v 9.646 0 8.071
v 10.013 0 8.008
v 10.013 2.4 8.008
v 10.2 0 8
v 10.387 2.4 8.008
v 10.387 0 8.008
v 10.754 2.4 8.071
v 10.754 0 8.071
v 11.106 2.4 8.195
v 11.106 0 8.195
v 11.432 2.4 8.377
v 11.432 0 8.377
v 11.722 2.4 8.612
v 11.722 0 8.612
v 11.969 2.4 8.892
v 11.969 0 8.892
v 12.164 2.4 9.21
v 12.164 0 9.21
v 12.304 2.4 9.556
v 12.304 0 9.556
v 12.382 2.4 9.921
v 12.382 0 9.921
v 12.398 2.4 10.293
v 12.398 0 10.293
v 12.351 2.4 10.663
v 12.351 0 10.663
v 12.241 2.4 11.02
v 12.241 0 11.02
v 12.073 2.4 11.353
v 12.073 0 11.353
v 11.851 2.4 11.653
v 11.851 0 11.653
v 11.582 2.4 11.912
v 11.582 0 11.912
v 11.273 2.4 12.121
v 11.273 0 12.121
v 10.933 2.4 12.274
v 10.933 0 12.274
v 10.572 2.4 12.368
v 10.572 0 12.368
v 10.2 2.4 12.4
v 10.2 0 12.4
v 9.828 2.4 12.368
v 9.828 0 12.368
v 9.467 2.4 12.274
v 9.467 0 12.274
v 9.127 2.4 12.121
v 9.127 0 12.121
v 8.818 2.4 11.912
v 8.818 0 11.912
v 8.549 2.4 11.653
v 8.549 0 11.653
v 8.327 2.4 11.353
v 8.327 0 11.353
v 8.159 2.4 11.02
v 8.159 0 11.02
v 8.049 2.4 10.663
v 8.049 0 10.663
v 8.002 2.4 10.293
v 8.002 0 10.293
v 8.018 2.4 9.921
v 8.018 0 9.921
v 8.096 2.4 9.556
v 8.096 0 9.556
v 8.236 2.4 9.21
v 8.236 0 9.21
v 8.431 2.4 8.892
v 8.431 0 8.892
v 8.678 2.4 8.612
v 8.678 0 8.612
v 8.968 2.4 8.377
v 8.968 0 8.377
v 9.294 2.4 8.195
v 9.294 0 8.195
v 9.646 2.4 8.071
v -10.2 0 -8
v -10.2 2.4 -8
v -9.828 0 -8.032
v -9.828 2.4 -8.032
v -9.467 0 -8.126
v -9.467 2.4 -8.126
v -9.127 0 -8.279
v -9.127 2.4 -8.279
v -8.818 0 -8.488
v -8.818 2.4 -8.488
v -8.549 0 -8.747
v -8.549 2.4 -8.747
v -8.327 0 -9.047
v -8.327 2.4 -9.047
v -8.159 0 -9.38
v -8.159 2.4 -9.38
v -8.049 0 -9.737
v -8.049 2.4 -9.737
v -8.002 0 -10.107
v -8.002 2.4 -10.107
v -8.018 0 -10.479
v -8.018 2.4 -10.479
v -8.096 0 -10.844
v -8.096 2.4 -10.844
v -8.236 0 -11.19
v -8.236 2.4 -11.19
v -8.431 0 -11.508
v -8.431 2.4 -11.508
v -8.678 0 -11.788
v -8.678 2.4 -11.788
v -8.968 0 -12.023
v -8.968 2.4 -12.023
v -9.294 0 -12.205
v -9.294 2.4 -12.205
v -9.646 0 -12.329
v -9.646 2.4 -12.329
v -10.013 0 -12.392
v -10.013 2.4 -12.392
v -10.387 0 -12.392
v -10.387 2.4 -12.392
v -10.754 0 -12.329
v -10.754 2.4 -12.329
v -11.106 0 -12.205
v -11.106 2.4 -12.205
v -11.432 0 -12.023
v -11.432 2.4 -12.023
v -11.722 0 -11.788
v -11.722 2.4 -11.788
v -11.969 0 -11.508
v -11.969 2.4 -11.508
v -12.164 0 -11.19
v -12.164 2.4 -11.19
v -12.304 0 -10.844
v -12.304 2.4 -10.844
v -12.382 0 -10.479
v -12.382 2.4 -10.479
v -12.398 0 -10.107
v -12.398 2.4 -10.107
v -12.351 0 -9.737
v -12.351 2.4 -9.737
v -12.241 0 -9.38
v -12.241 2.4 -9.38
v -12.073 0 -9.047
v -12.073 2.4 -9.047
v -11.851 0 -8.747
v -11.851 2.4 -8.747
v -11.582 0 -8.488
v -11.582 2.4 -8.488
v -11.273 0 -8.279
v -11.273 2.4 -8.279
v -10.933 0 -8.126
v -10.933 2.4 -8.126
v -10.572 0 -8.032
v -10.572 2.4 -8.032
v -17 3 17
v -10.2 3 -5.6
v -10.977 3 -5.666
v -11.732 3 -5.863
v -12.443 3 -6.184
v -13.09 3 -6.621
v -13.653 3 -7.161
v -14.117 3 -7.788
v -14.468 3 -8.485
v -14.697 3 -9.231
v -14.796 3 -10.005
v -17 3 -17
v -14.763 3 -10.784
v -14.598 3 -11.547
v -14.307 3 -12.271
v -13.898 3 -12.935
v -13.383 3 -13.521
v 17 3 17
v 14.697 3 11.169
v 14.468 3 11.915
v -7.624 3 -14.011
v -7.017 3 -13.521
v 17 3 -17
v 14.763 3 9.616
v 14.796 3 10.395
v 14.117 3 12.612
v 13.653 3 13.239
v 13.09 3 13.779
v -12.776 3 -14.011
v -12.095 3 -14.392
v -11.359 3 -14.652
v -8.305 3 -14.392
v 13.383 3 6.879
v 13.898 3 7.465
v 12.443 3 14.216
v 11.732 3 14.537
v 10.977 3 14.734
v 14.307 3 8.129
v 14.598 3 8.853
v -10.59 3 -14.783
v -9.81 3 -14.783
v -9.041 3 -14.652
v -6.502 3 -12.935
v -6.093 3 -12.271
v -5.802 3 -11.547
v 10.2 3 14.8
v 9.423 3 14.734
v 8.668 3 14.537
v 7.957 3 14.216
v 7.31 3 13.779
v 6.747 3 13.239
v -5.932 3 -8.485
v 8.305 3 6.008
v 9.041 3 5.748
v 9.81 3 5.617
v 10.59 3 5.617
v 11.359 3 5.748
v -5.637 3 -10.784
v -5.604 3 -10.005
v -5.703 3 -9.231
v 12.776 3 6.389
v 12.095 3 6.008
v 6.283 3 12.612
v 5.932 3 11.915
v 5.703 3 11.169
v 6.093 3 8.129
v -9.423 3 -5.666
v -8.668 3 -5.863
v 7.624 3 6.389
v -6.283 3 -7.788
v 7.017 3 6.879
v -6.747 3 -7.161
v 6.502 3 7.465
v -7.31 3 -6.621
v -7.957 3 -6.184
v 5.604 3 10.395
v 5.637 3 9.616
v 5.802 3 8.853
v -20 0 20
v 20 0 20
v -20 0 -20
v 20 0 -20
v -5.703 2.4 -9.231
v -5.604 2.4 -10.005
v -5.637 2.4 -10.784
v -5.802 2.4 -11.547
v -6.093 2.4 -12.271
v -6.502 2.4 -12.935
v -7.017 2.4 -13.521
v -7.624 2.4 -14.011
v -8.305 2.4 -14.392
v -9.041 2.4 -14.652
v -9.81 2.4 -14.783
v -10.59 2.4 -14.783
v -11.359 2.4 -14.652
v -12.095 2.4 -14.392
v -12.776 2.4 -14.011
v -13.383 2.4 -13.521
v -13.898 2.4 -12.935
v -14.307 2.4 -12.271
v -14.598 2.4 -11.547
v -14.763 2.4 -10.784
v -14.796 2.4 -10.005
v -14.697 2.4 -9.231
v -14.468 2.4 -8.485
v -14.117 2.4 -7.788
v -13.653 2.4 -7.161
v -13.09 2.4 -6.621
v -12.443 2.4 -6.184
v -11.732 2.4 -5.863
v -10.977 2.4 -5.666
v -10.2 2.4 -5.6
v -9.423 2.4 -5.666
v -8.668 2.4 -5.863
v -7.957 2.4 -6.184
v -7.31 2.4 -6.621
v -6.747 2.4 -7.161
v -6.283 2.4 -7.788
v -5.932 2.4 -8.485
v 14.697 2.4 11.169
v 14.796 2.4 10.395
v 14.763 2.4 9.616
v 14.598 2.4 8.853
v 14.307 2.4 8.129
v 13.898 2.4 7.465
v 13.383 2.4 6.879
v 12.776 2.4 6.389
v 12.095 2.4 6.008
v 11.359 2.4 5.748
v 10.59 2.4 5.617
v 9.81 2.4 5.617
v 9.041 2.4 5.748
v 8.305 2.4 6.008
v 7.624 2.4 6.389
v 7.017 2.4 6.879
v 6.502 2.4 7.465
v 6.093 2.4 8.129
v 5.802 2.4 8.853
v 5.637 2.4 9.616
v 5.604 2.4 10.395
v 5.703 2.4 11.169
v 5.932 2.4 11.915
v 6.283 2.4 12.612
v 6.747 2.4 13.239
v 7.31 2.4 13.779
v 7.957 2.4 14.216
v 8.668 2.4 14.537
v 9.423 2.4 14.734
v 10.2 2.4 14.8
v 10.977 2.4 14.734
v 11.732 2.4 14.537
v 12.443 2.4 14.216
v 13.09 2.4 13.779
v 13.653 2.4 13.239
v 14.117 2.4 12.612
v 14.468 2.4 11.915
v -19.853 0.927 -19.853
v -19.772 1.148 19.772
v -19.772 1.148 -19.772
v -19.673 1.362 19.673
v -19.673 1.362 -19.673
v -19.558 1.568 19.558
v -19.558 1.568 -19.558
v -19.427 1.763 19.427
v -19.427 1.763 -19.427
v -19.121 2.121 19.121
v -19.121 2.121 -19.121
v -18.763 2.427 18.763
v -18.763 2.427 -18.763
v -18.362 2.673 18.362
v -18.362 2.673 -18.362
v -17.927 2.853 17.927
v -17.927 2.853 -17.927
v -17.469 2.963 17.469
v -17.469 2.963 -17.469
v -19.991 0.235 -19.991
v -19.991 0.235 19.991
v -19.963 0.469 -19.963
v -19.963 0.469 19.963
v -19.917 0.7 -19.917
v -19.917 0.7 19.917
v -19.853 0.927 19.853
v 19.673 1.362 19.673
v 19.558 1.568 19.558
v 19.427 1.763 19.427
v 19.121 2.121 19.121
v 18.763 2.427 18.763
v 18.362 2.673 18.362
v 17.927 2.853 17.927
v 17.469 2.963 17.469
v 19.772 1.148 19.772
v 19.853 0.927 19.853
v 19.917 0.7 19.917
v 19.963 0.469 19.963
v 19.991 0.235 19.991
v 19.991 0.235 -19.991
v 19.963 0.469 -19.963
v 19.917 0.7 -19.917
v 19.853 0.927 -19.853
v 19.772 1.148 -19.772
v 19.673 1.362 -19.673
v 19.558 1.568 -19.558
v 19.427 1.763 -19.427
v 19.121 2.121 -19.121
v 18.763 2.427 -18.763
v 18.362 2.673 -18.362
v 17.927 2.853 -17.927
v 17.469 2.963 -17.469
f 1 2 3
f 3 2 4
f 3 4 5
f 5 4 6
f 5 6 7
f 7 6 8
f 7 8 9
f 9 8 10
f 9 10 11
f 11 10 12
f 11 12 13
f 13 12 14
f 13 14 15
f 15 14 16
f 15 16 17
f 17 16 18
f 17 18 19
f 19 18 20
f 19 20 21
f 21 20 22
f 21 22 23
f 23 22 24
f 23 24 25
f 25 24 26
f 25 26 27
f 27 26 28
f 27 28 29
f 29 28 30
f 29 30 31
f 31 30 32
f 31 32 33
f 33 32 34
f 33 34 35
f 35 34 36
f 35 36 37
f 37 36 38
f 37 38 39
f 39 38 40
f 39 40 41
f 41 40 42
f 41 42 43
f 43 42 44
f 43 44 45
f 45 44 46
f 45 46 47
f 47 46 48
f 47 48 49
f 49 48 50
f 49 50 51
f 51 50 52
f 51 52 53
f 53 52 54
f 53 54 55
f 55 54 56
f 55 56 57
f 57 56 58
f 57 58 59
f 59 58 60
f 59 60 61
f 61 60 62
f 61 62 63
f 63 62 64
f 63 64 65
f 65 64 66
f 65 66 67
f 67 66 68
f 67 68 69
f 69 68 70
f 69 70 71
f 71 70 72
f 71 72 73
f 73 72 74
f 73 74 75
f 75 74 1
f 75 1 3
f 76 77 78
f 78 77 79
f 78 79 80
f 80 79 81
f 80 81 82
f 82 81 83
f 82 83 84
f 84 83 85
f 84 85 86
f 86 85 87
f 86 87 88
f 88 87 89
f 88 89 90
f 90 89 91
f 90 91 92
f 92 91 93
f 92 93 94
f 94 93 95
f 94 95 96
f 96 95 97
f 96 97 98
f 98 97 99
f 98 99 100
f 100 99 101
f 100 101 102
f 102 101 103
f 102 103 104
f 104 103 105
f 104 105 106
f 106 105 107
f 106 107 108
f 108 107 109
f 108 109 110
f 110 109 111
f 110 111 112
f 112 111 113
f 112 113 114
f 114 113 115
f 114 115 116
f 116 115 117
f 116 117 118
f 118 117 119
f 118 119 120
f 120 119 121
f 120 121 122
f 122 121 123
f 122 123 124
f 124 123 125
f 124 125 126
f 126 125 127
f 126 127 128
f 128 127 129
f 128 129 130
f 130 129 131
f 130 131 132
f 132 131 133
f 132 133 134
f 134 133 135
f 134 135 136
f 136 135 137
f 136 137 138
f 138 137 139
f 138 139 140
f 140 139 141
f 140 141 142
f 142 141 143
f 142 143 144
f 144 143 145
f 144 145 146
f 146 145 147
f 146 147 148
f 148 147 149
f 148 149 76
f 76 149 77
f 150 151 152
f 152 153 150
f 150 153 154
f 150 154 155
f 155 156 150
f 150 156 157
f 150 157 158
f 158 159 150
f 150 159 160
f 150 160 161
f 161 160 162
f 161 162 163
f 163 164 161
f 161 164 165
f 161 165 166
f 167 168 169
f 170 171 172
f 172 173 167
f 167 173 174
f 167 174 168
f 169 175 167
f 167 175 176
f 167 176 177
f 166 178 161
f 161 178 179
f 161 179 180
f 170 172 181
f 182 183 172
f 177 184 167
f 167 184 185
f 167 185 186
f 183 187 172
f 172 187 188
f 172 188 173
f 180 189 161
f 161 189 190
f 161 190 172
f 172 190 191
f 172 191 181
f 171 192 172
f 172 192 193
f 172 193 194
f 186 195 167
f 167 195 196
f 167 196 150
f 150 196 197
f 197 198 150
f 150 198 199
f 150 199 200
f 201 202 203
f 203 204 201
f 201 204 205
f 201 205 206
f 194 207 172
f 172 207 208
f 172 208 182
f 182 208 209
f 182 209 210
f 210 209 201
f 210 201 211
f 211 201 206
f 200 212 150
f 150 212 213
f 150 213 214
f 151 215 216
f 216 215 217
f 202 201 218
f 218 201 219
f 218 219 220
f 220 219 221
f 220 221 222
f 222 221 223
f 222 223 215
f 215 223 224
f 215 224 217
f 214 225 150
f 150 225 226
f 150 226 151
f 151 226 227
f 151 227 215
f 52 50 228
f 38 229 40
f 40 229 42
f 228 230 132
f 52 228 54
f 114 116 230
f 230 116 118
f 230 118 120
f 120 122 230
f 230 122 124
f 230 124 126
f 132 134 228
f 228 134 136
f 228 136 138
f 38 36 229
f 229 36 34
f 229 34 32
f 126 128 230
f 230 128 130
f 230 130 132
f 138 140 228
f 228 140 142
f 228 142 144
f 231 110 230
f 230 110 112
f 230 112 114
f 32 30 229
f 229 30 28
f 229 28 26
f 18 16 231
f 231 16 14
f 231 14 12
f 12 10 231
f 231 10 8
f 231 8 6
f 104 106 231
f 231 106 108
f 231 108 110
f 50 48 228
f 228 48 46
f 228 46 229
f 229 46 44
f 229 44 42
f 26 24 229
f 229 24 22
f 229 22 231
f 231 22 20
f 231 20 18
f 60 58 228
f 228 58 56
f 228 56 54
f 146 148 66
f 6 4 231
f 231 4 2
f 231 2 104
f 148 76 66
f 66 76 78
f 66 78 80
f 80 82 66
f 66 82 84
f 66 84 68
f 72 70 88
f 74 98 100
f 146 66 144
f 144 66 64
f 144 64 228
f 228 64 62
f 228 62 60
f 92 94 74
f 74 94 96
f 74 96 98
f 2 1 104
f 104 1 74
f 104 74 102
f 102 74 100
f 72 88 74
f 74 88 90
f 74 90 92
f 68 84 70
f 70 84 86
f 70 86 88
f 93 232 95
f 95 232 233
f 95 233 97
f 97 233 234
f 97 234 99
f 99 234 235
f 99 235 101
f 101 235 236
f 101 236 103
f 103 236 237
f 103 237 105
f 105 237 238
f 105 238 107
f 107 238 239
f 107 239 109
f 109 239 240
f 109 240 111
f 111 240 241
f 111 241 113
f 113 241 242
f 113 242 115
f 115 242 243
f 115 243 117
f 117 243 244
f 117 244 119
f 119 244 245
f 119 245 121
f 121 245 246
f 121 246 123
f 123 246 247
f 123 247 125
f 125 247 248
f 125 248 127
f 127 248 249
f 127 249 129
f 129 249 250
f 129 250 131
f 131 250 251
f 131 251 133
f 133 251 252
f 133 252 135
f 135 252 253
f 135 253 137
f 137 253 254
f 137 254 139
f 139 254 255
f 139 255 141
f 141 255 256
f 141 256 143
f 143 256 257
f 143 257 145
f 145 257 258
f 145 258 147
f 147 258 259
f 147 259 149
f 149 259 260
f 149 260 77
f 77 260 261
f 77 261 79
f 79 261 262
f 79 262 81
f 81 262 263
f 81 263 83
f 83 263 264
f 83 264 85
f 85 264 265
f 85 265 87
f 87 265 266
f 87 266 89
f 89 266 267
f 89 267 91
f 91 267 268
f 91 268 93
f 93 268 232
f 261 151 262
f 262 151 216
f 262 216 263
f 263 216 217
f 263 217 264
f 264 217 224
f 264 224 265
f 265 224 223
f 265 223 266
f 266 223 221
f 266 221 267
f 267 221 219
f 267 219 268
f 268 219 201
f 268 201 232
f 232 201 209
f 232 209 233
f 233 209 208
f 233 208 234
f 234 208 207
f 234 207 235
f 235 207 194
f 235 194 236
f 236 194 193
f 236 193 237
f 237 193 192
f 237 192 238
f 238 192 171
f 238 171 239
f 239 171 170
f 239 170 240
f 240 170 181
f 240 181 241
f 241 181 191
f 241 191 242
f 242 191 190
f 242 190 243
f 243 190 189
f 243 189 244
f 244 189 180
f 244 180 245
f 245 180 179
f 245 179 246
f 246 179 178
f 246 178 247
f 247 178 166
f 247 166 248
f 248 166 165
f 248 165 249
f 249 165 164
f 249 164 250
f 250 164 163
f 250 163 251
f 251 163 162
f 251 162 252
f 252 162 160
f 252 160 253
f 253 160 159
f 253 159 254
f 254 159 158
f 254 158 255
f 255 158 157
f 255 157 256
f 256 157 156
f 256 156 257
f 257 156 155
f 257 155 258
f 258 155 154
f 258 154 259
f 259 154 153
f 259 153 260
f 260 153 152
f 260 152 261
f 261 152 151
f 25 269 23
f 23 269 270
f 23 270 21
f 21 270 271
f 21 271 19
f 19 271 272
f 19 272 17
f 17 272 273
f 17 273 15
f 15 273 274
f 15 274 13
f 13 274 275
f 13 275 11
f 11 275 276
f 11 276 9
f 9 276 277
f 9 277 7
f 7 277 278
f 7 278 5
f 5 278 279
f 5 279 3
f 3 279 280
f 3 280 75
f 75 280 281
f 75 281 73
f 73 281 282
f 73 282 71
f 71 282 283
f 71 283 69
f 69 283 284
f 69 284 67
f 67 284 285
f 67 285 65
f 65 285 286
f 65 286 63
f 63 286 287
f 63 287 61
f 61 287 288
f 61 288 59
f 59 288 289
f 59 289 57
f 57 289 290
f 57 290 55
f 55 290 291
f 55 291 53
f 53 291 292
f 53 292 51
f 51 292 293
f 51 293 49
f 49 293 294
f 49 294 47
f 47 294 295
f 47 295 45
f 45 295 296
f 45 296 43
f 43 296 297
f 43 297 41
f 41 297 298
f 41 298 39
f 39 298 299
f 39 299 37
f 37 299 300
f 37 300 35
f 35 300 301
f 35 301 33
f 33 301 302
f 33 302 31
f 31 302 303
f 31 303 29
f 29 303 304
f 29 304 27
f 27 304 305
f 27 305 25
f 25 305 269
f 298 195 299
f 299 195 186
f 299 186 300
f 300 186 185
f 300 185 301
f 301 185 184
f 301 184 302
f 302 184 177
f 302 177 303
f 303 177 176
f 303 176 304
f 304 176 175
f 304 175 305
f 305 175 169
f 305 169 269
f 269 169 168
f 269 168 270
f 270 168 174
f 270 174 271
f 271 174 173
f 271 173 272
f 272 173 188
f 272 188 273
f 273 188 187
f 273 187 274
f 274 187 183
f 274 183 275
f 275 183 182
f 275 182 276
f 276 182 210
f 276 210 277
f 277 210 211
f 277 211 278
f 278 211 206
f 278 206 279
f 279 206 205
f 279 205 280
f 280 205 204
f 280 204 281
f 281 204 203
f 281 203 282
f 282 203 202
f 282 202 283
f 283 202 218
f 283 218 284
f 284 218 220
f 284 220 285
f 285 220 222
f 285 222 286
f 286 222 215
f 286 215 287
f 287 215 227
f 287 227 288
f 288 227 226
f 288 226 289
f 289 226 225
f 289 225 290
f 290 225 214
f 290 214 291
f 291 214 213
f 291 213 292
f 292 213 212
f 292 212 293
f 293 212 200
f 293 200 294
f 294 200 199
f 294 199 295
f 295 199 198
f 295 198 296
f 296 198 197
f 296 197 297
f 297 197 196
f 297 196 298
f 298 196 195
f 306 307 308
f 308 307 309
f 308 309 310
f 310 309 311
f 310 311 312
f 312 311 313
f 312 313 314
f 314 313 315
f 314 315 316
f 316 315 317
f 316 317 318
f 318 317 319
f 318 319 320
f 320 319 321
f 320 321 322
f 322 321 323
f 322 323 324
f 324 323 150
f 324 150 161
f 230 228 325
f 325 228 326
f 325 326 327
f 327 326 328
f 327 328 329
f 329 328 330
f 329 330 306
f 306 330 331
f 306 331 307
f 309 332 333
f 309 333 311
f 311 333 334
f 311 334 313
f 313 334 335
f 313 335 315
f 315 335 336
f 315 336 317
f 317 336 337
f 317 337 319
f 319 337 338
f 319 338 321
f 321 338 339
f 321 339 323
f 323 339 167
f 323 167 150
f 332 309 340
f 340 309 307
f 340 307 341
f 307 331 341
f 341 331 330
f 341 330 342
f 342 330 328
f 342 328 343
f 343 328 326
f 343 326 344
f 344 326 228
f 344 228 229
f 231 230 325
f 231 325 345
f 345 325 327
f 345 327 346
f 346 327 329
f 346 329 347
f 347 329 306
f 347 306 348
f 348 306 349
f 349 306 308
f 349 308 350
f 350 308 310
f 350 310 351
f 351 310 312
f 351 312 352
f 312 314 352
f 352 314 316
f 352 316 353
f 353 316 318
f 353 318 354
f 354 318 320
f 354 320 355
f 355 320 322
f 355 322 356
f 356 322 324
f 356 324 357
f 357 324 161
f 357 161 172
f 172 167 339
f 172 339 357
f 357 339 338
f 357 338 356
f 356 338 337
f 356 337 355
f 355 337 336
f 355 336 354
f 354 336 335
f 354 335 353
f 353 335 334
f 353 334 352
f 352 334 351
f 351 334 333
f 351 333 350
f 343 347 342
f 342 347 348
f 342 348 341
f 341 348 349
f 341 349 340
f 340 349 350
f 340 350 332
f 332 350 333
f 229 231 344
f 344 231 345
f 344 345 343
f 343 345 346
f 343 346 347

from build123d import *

# Parameters (mm, degrees)
SKETCH1_W           = 40
SKETCH1_H           = 40
BOSS_EXTRUDE1_DEPTH = 3
SKETCH2_R           = 2.2
CUT_EXTRUDE1_DEPTH  = 29.442925307
SKETCH3_R           = 4.6
CUT_EXTRUDE2_DEPTH  = 0.6
FILLET1_R           = 3


with BuildPart() as part:
    # Sketch1 → Boss-Extrude1 (new body)
    with BuildSketch(Plane(origin=(0, 0, 0), x_dir=(1, 0, 0), z_dir=(0, 1, 0))):
        Rectangle(SKETCH1_W, SKETCH1_H)
    extrude(amount=BOSS_EXTRUDE1_DEPTH)

    # Sketch2 → Cut-Extrude1 (cut, through all)
    with BuildSketch(Plane(origin=(0, 3, 0), x_dir=(1, 0, 0), z_dir=(0, 1, 0))):
        with Locations(Location((-10.2, 10.2, 0), (0, 0, 270))):
            Circle(SKETCH2_R)
        with Locations(Location((10.2, -10.2, 0), (0, 0, 90))):
            Circle(SKETCH2_R)
    extrude(amount=-CUT_EXTRUDE1_DEPTH, mode=Mode.SUBTRACT)

    # Sketch3 → Cut-Extrude2 (cut)
    with BuildSketch(Plane(origin=(0, 3, 0), x_dir=(1, 0, 0), z_dir=(0, 1, 0))):
        with Locations(Location((-10.2, 10.2, 0), (0, 0, 270))):
            Circle(SKETCH3_R)
        with Locations(Location((10.2, -10.2, 0), (0, 0, 270))):
            Circle(SKETCH3_R)
    extrude(amount=-CUT_EXTRUDE2_DEPTH, mode=Mode.SUBTRACT)

    # Fillet1
    fillet1_edges = [part.edges().sort_by_distance(p)[0] for p in [
        (20, 3, 0),
        (-20, 3, 0),
        (0, 3, 20),
        (0, 3, -20),
    ]]
    fillet(fillet1_edges, radius=FILLET1_R - 0.0001)  # a hair under: the kernel refuses the full size


solid = part.part
